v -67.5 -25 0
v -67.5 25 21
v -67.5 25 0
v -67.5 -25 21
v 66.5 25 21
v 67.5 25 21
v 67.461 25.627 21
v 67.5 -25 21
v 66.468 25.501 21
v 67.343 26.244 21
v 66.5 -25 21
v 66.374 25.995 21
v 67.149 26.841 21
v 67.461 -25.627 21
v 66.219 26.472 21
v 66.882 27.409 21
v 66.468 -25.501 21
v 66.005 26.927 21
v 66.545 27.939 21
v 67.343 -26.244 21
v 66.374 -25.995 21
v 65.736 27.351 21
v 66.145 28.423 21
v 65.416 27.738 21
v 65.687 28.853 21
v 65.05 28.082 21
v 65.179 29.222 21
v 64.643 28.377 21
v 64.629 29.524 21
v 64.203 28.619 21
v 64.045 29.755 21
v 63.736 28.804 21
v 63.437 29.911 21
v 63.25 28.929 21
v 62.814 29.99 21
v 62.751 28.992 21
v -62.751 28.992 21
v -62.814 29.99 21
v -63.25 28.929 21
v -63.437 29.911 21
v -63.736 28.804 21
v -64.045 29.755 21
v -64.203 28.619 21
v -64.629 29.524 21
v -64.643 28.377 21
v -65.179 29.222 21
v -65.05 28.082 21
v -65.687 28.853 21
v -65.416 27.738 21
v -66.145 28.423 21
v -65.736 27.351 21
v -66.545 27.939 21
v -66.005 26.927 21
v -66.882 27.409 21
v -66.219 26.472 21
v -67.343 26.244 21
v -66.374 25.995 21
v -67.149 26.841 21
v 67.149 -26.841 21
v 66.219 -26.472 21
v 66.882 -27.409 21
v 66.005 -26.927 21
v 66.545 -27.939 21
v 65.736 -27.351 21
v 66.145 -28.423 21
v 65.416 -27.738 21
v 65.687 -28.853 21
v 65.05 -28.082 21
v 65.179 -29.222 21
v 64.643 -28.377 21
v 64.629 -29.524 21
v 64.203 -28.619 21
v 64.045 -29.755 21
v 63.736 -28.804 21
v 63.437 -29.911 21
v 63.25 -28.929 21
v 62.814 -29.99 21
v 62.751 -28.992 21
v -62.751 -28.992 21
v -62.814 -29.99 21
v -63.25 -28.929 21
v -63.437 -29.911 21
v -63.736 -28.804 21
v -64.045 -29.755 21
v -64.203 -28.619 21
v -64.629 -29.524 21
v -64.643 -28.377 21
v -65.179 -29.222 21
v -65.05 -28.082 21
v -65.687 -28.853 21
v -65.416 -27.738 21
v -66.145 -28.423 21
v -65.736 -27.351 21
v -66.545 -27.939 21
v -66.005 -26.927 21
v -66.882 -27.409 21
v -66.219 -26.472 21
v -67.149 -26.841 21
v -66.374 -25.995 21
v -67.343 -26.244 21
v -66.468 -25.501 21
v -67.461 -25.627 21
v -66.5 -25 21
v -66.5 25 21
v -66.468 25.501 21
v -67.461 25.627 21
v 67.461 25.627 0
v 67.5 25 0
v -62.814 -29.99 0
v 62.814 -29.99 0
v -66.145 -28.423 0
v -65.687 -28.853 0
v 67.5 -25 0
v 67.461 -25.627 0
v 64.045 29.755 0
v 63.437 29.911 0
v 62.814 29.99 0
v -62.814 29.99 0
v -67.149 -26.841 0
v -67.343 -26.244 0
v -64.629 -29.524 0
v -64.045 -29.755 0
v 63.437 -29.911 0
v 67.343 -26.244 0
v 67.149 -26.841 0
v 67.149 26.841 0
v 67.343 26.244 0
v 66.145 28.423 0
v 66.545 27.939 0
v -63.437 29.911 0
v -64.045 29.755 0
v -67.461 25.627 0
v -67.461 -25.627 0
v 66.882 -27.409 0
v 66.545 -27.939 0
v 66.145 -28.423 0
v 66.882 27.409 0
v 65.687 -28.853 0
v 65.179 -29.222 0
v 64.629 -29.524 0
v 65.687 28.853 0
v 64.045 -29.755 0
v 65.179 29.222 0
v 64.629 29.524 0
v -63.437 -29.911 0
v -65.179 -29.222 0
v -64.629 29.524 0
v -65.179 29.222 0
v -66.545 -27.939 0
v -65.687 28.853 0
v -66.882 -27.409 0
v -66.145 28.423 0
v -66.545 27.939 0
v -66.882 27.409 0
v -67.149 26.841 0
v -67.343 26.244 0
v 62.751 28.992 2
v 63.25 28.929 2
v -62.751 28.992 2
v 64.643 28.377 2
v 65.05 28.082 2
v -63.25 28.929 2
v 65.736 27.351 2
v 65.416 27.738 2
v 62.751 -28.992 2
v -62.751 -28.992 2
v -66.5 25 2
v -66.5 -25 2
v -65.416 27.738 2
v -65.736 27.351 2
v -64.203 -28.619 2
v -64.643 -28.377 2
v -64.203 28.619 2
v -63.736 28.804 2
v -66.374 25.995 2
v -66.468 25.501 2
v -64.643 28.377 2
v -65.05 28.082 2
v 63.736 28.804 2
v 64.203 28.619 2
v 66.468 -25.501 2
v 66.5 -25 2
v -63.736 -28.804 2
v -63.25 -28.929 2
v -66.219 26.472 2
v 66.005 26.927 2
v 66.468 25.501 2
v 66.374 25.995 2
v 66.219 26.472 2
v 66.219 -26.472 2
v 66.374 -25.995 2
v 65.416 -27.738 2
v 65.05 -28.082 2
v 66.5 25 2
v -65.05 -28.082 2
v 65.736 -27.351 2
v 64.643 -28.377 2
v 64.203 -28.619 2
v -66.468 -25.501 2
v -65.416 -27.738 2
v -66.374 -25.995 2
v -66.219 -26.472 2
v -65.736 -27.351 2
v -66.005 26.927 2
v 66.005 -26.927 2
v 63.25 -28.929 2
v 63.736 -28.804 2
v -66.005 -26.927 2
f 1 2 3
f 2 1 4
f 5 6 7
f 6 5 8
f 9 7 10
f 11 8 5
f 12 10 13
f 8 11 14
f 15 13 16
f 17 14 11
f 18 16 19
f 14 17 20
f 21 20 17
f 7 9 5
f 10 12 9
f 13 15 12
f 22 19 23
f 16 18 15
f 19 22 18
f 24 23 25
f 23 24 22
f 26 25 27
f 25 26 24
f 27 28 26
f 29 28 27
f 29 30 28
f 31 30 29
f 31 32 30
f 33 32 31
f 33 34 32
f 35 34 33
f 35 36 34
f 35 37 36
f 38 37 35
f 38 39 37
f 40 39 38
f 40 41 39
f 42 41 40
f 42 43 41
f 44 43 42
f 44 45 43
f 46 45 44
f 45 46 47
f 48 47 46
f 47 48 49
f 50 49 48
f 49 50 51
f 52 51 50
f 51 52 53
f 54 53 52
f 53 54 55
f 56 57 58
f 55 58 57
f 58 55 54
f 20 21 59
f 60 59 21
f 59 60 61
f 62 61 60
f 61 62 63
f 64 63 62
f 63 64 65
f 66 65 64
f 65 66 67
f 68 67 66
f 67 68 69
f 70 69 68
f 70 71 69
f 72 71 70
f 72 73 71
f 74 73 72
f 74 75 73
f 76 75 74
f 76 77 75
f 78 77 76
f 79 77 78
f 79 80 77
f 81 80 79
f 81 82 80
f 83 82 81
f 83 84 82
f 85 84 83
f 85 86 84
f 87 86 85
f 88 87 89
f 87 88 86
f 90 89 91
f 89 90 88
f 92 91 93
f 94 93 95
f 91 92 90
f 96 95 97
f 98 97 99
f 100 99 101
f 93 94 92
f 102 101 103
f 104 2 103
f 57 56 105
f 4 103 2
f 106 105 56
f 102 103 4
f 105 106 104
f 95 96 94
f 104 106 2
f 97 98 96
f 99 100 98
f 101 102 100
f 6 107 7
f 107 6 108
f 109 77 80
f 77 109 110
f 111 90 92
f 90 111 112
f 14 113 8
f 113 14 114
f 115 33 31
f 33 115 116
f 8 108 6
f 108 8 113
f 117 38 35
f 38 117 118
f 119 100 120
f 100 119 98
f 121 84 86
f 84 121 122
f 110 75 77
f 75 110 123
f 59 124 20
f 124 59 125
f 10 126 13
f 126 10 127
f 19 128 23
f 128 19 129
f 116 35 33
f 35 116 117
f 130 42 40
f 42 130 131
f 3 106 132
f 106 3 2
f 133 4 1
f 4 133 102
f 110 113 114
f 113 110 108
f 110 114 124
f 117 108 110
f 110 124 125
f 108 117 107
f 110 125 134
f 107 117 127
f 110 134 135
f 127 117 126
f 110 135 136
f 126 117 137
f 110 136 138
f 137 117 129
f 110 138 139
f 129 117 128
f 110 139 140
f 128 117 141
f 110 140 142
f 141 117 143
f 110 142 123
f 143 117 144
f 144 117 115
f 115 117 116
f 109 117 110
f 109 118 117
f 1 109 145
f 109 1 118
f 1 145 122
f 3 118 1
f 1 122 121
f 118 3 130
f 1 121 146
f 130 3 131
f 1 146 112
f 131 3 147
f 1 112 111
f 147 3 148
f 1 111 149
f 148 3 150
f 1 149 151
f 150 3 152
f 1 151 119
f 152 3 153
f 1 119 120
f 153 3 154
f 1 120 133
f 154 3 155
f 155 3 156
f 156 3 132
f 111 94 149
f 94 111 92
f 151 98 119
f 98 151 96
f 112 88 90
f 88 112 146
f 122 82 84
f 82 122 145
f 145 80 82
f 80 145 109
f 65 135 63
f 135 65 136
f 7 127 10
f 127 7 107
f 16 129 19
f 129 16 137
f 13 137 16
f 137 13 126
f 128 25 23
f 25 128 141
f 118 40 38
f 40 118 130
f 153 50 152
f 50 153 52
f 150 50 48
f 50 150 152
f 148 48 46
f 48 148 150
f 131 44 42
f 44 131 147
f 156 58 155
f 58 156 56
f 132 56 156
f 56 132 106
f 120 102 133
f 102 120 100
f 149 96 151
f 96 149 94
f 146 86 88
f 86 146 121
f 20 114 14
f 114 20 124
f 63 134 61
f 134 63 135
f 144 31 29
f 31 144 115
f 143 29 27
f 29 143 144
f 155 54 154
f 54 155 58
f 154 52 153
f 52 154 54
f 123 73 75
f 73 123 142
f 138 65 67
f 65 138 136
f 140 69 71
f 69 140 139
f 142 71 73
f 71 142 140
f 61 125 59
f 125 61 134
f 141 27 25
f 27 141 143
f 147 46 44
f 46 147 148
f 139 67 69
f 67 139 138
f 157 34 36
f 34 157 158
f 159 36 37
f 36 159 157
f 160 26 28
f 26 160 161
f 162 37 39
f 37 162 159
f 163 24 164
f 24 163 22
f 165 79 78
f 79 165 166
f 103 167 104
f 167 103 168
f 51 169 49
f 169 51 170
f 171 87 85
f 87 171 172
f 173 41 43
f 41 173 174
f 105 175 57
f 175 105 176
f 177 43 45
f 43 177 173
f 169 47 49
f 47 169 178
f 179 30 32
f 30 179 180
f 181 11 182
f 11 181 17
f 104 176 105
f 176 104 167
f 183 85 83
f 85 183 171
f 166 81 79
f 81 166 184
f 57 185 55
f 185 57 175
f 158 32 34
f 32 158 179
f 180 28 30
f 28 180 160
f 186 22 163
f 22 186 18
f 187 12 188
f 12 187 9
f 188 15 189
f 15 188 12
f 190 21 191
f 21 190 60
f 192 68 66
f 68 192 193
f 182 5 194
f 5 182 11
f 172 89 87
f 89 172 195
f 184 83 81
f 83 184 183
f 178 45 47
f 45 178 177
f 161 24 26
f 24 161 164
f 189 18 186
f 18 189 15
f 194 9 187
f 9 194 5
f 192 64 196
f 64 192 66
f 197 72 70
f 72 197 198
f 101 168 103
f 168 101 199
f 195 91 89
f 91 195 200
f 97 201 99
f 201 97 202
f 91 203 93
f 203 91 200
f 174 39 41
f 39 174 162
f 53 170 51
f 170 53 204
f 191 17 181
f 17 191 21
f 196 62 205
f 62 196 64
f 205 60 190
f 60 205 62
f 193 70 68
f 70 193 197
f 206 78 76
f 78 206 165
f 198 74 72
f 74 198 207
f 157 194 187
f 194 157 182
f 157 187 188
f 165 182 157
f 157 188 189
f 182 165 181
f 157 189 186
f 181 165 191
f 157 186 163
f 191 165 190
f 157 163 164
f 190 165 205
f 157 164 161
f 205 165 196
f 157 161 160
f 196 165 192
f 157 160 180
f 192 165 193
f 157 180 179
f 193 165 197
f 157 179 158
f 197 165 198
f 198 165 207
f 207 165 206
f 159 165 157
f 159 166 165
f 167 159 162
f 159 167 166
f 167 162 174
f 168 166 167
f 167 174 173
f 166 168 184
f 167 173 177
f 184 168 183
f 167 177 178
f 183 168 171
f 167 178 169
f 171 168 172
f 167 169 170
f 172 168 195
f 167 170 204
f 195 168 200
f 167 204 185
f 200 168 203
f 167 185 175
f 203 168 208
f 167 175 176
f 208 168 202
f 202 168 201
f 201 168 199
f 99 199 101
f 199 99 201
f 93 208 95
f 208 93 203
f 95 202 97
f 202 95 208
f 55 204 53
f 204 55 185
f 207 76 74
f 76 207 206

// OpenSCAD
$fn = 50;


difference() {
	union() {
		hull() {
			translate(v = [-62.5000000000, 25.0000000000, 0]) {
				cylinder(h = 21, r = 5);
			}
			translate(v = [62.5000000000, 25.0000000000, 0]) {
				cylinder(h = 21, r = 5);
			}
			translate(v = [-62.5000000000, -25.0000000000, 0]) {
				cylinder(h = 21, r = 5);
			}
			translate(v = [62.5000000000, -25.0000000000, 0]) {
				cylinder(h = 21, r = 5);
			}
		}
	}
	union() {
		translate(v = [0, 0, 2]) {
			hull() {
				translate(v = [-62.5000000000, 25.0000000000, 0]) {
					cylinder(h = 19, r = 4);
				}
				translate(v = [62.5000000000, 25.0000000000, 0]) {
					cylinder(h = 19, r = 4);
				}
				translate(v = [-62.5000000000, -25.0000000000, 0]) {
					cylinder(h = 19, r = 4);
				}
				translate(v = [62.5000000000, -25.0000000000, 0]) {
					cylinder(h = 19, r = 4);
				}
			}
		}
	}
}
